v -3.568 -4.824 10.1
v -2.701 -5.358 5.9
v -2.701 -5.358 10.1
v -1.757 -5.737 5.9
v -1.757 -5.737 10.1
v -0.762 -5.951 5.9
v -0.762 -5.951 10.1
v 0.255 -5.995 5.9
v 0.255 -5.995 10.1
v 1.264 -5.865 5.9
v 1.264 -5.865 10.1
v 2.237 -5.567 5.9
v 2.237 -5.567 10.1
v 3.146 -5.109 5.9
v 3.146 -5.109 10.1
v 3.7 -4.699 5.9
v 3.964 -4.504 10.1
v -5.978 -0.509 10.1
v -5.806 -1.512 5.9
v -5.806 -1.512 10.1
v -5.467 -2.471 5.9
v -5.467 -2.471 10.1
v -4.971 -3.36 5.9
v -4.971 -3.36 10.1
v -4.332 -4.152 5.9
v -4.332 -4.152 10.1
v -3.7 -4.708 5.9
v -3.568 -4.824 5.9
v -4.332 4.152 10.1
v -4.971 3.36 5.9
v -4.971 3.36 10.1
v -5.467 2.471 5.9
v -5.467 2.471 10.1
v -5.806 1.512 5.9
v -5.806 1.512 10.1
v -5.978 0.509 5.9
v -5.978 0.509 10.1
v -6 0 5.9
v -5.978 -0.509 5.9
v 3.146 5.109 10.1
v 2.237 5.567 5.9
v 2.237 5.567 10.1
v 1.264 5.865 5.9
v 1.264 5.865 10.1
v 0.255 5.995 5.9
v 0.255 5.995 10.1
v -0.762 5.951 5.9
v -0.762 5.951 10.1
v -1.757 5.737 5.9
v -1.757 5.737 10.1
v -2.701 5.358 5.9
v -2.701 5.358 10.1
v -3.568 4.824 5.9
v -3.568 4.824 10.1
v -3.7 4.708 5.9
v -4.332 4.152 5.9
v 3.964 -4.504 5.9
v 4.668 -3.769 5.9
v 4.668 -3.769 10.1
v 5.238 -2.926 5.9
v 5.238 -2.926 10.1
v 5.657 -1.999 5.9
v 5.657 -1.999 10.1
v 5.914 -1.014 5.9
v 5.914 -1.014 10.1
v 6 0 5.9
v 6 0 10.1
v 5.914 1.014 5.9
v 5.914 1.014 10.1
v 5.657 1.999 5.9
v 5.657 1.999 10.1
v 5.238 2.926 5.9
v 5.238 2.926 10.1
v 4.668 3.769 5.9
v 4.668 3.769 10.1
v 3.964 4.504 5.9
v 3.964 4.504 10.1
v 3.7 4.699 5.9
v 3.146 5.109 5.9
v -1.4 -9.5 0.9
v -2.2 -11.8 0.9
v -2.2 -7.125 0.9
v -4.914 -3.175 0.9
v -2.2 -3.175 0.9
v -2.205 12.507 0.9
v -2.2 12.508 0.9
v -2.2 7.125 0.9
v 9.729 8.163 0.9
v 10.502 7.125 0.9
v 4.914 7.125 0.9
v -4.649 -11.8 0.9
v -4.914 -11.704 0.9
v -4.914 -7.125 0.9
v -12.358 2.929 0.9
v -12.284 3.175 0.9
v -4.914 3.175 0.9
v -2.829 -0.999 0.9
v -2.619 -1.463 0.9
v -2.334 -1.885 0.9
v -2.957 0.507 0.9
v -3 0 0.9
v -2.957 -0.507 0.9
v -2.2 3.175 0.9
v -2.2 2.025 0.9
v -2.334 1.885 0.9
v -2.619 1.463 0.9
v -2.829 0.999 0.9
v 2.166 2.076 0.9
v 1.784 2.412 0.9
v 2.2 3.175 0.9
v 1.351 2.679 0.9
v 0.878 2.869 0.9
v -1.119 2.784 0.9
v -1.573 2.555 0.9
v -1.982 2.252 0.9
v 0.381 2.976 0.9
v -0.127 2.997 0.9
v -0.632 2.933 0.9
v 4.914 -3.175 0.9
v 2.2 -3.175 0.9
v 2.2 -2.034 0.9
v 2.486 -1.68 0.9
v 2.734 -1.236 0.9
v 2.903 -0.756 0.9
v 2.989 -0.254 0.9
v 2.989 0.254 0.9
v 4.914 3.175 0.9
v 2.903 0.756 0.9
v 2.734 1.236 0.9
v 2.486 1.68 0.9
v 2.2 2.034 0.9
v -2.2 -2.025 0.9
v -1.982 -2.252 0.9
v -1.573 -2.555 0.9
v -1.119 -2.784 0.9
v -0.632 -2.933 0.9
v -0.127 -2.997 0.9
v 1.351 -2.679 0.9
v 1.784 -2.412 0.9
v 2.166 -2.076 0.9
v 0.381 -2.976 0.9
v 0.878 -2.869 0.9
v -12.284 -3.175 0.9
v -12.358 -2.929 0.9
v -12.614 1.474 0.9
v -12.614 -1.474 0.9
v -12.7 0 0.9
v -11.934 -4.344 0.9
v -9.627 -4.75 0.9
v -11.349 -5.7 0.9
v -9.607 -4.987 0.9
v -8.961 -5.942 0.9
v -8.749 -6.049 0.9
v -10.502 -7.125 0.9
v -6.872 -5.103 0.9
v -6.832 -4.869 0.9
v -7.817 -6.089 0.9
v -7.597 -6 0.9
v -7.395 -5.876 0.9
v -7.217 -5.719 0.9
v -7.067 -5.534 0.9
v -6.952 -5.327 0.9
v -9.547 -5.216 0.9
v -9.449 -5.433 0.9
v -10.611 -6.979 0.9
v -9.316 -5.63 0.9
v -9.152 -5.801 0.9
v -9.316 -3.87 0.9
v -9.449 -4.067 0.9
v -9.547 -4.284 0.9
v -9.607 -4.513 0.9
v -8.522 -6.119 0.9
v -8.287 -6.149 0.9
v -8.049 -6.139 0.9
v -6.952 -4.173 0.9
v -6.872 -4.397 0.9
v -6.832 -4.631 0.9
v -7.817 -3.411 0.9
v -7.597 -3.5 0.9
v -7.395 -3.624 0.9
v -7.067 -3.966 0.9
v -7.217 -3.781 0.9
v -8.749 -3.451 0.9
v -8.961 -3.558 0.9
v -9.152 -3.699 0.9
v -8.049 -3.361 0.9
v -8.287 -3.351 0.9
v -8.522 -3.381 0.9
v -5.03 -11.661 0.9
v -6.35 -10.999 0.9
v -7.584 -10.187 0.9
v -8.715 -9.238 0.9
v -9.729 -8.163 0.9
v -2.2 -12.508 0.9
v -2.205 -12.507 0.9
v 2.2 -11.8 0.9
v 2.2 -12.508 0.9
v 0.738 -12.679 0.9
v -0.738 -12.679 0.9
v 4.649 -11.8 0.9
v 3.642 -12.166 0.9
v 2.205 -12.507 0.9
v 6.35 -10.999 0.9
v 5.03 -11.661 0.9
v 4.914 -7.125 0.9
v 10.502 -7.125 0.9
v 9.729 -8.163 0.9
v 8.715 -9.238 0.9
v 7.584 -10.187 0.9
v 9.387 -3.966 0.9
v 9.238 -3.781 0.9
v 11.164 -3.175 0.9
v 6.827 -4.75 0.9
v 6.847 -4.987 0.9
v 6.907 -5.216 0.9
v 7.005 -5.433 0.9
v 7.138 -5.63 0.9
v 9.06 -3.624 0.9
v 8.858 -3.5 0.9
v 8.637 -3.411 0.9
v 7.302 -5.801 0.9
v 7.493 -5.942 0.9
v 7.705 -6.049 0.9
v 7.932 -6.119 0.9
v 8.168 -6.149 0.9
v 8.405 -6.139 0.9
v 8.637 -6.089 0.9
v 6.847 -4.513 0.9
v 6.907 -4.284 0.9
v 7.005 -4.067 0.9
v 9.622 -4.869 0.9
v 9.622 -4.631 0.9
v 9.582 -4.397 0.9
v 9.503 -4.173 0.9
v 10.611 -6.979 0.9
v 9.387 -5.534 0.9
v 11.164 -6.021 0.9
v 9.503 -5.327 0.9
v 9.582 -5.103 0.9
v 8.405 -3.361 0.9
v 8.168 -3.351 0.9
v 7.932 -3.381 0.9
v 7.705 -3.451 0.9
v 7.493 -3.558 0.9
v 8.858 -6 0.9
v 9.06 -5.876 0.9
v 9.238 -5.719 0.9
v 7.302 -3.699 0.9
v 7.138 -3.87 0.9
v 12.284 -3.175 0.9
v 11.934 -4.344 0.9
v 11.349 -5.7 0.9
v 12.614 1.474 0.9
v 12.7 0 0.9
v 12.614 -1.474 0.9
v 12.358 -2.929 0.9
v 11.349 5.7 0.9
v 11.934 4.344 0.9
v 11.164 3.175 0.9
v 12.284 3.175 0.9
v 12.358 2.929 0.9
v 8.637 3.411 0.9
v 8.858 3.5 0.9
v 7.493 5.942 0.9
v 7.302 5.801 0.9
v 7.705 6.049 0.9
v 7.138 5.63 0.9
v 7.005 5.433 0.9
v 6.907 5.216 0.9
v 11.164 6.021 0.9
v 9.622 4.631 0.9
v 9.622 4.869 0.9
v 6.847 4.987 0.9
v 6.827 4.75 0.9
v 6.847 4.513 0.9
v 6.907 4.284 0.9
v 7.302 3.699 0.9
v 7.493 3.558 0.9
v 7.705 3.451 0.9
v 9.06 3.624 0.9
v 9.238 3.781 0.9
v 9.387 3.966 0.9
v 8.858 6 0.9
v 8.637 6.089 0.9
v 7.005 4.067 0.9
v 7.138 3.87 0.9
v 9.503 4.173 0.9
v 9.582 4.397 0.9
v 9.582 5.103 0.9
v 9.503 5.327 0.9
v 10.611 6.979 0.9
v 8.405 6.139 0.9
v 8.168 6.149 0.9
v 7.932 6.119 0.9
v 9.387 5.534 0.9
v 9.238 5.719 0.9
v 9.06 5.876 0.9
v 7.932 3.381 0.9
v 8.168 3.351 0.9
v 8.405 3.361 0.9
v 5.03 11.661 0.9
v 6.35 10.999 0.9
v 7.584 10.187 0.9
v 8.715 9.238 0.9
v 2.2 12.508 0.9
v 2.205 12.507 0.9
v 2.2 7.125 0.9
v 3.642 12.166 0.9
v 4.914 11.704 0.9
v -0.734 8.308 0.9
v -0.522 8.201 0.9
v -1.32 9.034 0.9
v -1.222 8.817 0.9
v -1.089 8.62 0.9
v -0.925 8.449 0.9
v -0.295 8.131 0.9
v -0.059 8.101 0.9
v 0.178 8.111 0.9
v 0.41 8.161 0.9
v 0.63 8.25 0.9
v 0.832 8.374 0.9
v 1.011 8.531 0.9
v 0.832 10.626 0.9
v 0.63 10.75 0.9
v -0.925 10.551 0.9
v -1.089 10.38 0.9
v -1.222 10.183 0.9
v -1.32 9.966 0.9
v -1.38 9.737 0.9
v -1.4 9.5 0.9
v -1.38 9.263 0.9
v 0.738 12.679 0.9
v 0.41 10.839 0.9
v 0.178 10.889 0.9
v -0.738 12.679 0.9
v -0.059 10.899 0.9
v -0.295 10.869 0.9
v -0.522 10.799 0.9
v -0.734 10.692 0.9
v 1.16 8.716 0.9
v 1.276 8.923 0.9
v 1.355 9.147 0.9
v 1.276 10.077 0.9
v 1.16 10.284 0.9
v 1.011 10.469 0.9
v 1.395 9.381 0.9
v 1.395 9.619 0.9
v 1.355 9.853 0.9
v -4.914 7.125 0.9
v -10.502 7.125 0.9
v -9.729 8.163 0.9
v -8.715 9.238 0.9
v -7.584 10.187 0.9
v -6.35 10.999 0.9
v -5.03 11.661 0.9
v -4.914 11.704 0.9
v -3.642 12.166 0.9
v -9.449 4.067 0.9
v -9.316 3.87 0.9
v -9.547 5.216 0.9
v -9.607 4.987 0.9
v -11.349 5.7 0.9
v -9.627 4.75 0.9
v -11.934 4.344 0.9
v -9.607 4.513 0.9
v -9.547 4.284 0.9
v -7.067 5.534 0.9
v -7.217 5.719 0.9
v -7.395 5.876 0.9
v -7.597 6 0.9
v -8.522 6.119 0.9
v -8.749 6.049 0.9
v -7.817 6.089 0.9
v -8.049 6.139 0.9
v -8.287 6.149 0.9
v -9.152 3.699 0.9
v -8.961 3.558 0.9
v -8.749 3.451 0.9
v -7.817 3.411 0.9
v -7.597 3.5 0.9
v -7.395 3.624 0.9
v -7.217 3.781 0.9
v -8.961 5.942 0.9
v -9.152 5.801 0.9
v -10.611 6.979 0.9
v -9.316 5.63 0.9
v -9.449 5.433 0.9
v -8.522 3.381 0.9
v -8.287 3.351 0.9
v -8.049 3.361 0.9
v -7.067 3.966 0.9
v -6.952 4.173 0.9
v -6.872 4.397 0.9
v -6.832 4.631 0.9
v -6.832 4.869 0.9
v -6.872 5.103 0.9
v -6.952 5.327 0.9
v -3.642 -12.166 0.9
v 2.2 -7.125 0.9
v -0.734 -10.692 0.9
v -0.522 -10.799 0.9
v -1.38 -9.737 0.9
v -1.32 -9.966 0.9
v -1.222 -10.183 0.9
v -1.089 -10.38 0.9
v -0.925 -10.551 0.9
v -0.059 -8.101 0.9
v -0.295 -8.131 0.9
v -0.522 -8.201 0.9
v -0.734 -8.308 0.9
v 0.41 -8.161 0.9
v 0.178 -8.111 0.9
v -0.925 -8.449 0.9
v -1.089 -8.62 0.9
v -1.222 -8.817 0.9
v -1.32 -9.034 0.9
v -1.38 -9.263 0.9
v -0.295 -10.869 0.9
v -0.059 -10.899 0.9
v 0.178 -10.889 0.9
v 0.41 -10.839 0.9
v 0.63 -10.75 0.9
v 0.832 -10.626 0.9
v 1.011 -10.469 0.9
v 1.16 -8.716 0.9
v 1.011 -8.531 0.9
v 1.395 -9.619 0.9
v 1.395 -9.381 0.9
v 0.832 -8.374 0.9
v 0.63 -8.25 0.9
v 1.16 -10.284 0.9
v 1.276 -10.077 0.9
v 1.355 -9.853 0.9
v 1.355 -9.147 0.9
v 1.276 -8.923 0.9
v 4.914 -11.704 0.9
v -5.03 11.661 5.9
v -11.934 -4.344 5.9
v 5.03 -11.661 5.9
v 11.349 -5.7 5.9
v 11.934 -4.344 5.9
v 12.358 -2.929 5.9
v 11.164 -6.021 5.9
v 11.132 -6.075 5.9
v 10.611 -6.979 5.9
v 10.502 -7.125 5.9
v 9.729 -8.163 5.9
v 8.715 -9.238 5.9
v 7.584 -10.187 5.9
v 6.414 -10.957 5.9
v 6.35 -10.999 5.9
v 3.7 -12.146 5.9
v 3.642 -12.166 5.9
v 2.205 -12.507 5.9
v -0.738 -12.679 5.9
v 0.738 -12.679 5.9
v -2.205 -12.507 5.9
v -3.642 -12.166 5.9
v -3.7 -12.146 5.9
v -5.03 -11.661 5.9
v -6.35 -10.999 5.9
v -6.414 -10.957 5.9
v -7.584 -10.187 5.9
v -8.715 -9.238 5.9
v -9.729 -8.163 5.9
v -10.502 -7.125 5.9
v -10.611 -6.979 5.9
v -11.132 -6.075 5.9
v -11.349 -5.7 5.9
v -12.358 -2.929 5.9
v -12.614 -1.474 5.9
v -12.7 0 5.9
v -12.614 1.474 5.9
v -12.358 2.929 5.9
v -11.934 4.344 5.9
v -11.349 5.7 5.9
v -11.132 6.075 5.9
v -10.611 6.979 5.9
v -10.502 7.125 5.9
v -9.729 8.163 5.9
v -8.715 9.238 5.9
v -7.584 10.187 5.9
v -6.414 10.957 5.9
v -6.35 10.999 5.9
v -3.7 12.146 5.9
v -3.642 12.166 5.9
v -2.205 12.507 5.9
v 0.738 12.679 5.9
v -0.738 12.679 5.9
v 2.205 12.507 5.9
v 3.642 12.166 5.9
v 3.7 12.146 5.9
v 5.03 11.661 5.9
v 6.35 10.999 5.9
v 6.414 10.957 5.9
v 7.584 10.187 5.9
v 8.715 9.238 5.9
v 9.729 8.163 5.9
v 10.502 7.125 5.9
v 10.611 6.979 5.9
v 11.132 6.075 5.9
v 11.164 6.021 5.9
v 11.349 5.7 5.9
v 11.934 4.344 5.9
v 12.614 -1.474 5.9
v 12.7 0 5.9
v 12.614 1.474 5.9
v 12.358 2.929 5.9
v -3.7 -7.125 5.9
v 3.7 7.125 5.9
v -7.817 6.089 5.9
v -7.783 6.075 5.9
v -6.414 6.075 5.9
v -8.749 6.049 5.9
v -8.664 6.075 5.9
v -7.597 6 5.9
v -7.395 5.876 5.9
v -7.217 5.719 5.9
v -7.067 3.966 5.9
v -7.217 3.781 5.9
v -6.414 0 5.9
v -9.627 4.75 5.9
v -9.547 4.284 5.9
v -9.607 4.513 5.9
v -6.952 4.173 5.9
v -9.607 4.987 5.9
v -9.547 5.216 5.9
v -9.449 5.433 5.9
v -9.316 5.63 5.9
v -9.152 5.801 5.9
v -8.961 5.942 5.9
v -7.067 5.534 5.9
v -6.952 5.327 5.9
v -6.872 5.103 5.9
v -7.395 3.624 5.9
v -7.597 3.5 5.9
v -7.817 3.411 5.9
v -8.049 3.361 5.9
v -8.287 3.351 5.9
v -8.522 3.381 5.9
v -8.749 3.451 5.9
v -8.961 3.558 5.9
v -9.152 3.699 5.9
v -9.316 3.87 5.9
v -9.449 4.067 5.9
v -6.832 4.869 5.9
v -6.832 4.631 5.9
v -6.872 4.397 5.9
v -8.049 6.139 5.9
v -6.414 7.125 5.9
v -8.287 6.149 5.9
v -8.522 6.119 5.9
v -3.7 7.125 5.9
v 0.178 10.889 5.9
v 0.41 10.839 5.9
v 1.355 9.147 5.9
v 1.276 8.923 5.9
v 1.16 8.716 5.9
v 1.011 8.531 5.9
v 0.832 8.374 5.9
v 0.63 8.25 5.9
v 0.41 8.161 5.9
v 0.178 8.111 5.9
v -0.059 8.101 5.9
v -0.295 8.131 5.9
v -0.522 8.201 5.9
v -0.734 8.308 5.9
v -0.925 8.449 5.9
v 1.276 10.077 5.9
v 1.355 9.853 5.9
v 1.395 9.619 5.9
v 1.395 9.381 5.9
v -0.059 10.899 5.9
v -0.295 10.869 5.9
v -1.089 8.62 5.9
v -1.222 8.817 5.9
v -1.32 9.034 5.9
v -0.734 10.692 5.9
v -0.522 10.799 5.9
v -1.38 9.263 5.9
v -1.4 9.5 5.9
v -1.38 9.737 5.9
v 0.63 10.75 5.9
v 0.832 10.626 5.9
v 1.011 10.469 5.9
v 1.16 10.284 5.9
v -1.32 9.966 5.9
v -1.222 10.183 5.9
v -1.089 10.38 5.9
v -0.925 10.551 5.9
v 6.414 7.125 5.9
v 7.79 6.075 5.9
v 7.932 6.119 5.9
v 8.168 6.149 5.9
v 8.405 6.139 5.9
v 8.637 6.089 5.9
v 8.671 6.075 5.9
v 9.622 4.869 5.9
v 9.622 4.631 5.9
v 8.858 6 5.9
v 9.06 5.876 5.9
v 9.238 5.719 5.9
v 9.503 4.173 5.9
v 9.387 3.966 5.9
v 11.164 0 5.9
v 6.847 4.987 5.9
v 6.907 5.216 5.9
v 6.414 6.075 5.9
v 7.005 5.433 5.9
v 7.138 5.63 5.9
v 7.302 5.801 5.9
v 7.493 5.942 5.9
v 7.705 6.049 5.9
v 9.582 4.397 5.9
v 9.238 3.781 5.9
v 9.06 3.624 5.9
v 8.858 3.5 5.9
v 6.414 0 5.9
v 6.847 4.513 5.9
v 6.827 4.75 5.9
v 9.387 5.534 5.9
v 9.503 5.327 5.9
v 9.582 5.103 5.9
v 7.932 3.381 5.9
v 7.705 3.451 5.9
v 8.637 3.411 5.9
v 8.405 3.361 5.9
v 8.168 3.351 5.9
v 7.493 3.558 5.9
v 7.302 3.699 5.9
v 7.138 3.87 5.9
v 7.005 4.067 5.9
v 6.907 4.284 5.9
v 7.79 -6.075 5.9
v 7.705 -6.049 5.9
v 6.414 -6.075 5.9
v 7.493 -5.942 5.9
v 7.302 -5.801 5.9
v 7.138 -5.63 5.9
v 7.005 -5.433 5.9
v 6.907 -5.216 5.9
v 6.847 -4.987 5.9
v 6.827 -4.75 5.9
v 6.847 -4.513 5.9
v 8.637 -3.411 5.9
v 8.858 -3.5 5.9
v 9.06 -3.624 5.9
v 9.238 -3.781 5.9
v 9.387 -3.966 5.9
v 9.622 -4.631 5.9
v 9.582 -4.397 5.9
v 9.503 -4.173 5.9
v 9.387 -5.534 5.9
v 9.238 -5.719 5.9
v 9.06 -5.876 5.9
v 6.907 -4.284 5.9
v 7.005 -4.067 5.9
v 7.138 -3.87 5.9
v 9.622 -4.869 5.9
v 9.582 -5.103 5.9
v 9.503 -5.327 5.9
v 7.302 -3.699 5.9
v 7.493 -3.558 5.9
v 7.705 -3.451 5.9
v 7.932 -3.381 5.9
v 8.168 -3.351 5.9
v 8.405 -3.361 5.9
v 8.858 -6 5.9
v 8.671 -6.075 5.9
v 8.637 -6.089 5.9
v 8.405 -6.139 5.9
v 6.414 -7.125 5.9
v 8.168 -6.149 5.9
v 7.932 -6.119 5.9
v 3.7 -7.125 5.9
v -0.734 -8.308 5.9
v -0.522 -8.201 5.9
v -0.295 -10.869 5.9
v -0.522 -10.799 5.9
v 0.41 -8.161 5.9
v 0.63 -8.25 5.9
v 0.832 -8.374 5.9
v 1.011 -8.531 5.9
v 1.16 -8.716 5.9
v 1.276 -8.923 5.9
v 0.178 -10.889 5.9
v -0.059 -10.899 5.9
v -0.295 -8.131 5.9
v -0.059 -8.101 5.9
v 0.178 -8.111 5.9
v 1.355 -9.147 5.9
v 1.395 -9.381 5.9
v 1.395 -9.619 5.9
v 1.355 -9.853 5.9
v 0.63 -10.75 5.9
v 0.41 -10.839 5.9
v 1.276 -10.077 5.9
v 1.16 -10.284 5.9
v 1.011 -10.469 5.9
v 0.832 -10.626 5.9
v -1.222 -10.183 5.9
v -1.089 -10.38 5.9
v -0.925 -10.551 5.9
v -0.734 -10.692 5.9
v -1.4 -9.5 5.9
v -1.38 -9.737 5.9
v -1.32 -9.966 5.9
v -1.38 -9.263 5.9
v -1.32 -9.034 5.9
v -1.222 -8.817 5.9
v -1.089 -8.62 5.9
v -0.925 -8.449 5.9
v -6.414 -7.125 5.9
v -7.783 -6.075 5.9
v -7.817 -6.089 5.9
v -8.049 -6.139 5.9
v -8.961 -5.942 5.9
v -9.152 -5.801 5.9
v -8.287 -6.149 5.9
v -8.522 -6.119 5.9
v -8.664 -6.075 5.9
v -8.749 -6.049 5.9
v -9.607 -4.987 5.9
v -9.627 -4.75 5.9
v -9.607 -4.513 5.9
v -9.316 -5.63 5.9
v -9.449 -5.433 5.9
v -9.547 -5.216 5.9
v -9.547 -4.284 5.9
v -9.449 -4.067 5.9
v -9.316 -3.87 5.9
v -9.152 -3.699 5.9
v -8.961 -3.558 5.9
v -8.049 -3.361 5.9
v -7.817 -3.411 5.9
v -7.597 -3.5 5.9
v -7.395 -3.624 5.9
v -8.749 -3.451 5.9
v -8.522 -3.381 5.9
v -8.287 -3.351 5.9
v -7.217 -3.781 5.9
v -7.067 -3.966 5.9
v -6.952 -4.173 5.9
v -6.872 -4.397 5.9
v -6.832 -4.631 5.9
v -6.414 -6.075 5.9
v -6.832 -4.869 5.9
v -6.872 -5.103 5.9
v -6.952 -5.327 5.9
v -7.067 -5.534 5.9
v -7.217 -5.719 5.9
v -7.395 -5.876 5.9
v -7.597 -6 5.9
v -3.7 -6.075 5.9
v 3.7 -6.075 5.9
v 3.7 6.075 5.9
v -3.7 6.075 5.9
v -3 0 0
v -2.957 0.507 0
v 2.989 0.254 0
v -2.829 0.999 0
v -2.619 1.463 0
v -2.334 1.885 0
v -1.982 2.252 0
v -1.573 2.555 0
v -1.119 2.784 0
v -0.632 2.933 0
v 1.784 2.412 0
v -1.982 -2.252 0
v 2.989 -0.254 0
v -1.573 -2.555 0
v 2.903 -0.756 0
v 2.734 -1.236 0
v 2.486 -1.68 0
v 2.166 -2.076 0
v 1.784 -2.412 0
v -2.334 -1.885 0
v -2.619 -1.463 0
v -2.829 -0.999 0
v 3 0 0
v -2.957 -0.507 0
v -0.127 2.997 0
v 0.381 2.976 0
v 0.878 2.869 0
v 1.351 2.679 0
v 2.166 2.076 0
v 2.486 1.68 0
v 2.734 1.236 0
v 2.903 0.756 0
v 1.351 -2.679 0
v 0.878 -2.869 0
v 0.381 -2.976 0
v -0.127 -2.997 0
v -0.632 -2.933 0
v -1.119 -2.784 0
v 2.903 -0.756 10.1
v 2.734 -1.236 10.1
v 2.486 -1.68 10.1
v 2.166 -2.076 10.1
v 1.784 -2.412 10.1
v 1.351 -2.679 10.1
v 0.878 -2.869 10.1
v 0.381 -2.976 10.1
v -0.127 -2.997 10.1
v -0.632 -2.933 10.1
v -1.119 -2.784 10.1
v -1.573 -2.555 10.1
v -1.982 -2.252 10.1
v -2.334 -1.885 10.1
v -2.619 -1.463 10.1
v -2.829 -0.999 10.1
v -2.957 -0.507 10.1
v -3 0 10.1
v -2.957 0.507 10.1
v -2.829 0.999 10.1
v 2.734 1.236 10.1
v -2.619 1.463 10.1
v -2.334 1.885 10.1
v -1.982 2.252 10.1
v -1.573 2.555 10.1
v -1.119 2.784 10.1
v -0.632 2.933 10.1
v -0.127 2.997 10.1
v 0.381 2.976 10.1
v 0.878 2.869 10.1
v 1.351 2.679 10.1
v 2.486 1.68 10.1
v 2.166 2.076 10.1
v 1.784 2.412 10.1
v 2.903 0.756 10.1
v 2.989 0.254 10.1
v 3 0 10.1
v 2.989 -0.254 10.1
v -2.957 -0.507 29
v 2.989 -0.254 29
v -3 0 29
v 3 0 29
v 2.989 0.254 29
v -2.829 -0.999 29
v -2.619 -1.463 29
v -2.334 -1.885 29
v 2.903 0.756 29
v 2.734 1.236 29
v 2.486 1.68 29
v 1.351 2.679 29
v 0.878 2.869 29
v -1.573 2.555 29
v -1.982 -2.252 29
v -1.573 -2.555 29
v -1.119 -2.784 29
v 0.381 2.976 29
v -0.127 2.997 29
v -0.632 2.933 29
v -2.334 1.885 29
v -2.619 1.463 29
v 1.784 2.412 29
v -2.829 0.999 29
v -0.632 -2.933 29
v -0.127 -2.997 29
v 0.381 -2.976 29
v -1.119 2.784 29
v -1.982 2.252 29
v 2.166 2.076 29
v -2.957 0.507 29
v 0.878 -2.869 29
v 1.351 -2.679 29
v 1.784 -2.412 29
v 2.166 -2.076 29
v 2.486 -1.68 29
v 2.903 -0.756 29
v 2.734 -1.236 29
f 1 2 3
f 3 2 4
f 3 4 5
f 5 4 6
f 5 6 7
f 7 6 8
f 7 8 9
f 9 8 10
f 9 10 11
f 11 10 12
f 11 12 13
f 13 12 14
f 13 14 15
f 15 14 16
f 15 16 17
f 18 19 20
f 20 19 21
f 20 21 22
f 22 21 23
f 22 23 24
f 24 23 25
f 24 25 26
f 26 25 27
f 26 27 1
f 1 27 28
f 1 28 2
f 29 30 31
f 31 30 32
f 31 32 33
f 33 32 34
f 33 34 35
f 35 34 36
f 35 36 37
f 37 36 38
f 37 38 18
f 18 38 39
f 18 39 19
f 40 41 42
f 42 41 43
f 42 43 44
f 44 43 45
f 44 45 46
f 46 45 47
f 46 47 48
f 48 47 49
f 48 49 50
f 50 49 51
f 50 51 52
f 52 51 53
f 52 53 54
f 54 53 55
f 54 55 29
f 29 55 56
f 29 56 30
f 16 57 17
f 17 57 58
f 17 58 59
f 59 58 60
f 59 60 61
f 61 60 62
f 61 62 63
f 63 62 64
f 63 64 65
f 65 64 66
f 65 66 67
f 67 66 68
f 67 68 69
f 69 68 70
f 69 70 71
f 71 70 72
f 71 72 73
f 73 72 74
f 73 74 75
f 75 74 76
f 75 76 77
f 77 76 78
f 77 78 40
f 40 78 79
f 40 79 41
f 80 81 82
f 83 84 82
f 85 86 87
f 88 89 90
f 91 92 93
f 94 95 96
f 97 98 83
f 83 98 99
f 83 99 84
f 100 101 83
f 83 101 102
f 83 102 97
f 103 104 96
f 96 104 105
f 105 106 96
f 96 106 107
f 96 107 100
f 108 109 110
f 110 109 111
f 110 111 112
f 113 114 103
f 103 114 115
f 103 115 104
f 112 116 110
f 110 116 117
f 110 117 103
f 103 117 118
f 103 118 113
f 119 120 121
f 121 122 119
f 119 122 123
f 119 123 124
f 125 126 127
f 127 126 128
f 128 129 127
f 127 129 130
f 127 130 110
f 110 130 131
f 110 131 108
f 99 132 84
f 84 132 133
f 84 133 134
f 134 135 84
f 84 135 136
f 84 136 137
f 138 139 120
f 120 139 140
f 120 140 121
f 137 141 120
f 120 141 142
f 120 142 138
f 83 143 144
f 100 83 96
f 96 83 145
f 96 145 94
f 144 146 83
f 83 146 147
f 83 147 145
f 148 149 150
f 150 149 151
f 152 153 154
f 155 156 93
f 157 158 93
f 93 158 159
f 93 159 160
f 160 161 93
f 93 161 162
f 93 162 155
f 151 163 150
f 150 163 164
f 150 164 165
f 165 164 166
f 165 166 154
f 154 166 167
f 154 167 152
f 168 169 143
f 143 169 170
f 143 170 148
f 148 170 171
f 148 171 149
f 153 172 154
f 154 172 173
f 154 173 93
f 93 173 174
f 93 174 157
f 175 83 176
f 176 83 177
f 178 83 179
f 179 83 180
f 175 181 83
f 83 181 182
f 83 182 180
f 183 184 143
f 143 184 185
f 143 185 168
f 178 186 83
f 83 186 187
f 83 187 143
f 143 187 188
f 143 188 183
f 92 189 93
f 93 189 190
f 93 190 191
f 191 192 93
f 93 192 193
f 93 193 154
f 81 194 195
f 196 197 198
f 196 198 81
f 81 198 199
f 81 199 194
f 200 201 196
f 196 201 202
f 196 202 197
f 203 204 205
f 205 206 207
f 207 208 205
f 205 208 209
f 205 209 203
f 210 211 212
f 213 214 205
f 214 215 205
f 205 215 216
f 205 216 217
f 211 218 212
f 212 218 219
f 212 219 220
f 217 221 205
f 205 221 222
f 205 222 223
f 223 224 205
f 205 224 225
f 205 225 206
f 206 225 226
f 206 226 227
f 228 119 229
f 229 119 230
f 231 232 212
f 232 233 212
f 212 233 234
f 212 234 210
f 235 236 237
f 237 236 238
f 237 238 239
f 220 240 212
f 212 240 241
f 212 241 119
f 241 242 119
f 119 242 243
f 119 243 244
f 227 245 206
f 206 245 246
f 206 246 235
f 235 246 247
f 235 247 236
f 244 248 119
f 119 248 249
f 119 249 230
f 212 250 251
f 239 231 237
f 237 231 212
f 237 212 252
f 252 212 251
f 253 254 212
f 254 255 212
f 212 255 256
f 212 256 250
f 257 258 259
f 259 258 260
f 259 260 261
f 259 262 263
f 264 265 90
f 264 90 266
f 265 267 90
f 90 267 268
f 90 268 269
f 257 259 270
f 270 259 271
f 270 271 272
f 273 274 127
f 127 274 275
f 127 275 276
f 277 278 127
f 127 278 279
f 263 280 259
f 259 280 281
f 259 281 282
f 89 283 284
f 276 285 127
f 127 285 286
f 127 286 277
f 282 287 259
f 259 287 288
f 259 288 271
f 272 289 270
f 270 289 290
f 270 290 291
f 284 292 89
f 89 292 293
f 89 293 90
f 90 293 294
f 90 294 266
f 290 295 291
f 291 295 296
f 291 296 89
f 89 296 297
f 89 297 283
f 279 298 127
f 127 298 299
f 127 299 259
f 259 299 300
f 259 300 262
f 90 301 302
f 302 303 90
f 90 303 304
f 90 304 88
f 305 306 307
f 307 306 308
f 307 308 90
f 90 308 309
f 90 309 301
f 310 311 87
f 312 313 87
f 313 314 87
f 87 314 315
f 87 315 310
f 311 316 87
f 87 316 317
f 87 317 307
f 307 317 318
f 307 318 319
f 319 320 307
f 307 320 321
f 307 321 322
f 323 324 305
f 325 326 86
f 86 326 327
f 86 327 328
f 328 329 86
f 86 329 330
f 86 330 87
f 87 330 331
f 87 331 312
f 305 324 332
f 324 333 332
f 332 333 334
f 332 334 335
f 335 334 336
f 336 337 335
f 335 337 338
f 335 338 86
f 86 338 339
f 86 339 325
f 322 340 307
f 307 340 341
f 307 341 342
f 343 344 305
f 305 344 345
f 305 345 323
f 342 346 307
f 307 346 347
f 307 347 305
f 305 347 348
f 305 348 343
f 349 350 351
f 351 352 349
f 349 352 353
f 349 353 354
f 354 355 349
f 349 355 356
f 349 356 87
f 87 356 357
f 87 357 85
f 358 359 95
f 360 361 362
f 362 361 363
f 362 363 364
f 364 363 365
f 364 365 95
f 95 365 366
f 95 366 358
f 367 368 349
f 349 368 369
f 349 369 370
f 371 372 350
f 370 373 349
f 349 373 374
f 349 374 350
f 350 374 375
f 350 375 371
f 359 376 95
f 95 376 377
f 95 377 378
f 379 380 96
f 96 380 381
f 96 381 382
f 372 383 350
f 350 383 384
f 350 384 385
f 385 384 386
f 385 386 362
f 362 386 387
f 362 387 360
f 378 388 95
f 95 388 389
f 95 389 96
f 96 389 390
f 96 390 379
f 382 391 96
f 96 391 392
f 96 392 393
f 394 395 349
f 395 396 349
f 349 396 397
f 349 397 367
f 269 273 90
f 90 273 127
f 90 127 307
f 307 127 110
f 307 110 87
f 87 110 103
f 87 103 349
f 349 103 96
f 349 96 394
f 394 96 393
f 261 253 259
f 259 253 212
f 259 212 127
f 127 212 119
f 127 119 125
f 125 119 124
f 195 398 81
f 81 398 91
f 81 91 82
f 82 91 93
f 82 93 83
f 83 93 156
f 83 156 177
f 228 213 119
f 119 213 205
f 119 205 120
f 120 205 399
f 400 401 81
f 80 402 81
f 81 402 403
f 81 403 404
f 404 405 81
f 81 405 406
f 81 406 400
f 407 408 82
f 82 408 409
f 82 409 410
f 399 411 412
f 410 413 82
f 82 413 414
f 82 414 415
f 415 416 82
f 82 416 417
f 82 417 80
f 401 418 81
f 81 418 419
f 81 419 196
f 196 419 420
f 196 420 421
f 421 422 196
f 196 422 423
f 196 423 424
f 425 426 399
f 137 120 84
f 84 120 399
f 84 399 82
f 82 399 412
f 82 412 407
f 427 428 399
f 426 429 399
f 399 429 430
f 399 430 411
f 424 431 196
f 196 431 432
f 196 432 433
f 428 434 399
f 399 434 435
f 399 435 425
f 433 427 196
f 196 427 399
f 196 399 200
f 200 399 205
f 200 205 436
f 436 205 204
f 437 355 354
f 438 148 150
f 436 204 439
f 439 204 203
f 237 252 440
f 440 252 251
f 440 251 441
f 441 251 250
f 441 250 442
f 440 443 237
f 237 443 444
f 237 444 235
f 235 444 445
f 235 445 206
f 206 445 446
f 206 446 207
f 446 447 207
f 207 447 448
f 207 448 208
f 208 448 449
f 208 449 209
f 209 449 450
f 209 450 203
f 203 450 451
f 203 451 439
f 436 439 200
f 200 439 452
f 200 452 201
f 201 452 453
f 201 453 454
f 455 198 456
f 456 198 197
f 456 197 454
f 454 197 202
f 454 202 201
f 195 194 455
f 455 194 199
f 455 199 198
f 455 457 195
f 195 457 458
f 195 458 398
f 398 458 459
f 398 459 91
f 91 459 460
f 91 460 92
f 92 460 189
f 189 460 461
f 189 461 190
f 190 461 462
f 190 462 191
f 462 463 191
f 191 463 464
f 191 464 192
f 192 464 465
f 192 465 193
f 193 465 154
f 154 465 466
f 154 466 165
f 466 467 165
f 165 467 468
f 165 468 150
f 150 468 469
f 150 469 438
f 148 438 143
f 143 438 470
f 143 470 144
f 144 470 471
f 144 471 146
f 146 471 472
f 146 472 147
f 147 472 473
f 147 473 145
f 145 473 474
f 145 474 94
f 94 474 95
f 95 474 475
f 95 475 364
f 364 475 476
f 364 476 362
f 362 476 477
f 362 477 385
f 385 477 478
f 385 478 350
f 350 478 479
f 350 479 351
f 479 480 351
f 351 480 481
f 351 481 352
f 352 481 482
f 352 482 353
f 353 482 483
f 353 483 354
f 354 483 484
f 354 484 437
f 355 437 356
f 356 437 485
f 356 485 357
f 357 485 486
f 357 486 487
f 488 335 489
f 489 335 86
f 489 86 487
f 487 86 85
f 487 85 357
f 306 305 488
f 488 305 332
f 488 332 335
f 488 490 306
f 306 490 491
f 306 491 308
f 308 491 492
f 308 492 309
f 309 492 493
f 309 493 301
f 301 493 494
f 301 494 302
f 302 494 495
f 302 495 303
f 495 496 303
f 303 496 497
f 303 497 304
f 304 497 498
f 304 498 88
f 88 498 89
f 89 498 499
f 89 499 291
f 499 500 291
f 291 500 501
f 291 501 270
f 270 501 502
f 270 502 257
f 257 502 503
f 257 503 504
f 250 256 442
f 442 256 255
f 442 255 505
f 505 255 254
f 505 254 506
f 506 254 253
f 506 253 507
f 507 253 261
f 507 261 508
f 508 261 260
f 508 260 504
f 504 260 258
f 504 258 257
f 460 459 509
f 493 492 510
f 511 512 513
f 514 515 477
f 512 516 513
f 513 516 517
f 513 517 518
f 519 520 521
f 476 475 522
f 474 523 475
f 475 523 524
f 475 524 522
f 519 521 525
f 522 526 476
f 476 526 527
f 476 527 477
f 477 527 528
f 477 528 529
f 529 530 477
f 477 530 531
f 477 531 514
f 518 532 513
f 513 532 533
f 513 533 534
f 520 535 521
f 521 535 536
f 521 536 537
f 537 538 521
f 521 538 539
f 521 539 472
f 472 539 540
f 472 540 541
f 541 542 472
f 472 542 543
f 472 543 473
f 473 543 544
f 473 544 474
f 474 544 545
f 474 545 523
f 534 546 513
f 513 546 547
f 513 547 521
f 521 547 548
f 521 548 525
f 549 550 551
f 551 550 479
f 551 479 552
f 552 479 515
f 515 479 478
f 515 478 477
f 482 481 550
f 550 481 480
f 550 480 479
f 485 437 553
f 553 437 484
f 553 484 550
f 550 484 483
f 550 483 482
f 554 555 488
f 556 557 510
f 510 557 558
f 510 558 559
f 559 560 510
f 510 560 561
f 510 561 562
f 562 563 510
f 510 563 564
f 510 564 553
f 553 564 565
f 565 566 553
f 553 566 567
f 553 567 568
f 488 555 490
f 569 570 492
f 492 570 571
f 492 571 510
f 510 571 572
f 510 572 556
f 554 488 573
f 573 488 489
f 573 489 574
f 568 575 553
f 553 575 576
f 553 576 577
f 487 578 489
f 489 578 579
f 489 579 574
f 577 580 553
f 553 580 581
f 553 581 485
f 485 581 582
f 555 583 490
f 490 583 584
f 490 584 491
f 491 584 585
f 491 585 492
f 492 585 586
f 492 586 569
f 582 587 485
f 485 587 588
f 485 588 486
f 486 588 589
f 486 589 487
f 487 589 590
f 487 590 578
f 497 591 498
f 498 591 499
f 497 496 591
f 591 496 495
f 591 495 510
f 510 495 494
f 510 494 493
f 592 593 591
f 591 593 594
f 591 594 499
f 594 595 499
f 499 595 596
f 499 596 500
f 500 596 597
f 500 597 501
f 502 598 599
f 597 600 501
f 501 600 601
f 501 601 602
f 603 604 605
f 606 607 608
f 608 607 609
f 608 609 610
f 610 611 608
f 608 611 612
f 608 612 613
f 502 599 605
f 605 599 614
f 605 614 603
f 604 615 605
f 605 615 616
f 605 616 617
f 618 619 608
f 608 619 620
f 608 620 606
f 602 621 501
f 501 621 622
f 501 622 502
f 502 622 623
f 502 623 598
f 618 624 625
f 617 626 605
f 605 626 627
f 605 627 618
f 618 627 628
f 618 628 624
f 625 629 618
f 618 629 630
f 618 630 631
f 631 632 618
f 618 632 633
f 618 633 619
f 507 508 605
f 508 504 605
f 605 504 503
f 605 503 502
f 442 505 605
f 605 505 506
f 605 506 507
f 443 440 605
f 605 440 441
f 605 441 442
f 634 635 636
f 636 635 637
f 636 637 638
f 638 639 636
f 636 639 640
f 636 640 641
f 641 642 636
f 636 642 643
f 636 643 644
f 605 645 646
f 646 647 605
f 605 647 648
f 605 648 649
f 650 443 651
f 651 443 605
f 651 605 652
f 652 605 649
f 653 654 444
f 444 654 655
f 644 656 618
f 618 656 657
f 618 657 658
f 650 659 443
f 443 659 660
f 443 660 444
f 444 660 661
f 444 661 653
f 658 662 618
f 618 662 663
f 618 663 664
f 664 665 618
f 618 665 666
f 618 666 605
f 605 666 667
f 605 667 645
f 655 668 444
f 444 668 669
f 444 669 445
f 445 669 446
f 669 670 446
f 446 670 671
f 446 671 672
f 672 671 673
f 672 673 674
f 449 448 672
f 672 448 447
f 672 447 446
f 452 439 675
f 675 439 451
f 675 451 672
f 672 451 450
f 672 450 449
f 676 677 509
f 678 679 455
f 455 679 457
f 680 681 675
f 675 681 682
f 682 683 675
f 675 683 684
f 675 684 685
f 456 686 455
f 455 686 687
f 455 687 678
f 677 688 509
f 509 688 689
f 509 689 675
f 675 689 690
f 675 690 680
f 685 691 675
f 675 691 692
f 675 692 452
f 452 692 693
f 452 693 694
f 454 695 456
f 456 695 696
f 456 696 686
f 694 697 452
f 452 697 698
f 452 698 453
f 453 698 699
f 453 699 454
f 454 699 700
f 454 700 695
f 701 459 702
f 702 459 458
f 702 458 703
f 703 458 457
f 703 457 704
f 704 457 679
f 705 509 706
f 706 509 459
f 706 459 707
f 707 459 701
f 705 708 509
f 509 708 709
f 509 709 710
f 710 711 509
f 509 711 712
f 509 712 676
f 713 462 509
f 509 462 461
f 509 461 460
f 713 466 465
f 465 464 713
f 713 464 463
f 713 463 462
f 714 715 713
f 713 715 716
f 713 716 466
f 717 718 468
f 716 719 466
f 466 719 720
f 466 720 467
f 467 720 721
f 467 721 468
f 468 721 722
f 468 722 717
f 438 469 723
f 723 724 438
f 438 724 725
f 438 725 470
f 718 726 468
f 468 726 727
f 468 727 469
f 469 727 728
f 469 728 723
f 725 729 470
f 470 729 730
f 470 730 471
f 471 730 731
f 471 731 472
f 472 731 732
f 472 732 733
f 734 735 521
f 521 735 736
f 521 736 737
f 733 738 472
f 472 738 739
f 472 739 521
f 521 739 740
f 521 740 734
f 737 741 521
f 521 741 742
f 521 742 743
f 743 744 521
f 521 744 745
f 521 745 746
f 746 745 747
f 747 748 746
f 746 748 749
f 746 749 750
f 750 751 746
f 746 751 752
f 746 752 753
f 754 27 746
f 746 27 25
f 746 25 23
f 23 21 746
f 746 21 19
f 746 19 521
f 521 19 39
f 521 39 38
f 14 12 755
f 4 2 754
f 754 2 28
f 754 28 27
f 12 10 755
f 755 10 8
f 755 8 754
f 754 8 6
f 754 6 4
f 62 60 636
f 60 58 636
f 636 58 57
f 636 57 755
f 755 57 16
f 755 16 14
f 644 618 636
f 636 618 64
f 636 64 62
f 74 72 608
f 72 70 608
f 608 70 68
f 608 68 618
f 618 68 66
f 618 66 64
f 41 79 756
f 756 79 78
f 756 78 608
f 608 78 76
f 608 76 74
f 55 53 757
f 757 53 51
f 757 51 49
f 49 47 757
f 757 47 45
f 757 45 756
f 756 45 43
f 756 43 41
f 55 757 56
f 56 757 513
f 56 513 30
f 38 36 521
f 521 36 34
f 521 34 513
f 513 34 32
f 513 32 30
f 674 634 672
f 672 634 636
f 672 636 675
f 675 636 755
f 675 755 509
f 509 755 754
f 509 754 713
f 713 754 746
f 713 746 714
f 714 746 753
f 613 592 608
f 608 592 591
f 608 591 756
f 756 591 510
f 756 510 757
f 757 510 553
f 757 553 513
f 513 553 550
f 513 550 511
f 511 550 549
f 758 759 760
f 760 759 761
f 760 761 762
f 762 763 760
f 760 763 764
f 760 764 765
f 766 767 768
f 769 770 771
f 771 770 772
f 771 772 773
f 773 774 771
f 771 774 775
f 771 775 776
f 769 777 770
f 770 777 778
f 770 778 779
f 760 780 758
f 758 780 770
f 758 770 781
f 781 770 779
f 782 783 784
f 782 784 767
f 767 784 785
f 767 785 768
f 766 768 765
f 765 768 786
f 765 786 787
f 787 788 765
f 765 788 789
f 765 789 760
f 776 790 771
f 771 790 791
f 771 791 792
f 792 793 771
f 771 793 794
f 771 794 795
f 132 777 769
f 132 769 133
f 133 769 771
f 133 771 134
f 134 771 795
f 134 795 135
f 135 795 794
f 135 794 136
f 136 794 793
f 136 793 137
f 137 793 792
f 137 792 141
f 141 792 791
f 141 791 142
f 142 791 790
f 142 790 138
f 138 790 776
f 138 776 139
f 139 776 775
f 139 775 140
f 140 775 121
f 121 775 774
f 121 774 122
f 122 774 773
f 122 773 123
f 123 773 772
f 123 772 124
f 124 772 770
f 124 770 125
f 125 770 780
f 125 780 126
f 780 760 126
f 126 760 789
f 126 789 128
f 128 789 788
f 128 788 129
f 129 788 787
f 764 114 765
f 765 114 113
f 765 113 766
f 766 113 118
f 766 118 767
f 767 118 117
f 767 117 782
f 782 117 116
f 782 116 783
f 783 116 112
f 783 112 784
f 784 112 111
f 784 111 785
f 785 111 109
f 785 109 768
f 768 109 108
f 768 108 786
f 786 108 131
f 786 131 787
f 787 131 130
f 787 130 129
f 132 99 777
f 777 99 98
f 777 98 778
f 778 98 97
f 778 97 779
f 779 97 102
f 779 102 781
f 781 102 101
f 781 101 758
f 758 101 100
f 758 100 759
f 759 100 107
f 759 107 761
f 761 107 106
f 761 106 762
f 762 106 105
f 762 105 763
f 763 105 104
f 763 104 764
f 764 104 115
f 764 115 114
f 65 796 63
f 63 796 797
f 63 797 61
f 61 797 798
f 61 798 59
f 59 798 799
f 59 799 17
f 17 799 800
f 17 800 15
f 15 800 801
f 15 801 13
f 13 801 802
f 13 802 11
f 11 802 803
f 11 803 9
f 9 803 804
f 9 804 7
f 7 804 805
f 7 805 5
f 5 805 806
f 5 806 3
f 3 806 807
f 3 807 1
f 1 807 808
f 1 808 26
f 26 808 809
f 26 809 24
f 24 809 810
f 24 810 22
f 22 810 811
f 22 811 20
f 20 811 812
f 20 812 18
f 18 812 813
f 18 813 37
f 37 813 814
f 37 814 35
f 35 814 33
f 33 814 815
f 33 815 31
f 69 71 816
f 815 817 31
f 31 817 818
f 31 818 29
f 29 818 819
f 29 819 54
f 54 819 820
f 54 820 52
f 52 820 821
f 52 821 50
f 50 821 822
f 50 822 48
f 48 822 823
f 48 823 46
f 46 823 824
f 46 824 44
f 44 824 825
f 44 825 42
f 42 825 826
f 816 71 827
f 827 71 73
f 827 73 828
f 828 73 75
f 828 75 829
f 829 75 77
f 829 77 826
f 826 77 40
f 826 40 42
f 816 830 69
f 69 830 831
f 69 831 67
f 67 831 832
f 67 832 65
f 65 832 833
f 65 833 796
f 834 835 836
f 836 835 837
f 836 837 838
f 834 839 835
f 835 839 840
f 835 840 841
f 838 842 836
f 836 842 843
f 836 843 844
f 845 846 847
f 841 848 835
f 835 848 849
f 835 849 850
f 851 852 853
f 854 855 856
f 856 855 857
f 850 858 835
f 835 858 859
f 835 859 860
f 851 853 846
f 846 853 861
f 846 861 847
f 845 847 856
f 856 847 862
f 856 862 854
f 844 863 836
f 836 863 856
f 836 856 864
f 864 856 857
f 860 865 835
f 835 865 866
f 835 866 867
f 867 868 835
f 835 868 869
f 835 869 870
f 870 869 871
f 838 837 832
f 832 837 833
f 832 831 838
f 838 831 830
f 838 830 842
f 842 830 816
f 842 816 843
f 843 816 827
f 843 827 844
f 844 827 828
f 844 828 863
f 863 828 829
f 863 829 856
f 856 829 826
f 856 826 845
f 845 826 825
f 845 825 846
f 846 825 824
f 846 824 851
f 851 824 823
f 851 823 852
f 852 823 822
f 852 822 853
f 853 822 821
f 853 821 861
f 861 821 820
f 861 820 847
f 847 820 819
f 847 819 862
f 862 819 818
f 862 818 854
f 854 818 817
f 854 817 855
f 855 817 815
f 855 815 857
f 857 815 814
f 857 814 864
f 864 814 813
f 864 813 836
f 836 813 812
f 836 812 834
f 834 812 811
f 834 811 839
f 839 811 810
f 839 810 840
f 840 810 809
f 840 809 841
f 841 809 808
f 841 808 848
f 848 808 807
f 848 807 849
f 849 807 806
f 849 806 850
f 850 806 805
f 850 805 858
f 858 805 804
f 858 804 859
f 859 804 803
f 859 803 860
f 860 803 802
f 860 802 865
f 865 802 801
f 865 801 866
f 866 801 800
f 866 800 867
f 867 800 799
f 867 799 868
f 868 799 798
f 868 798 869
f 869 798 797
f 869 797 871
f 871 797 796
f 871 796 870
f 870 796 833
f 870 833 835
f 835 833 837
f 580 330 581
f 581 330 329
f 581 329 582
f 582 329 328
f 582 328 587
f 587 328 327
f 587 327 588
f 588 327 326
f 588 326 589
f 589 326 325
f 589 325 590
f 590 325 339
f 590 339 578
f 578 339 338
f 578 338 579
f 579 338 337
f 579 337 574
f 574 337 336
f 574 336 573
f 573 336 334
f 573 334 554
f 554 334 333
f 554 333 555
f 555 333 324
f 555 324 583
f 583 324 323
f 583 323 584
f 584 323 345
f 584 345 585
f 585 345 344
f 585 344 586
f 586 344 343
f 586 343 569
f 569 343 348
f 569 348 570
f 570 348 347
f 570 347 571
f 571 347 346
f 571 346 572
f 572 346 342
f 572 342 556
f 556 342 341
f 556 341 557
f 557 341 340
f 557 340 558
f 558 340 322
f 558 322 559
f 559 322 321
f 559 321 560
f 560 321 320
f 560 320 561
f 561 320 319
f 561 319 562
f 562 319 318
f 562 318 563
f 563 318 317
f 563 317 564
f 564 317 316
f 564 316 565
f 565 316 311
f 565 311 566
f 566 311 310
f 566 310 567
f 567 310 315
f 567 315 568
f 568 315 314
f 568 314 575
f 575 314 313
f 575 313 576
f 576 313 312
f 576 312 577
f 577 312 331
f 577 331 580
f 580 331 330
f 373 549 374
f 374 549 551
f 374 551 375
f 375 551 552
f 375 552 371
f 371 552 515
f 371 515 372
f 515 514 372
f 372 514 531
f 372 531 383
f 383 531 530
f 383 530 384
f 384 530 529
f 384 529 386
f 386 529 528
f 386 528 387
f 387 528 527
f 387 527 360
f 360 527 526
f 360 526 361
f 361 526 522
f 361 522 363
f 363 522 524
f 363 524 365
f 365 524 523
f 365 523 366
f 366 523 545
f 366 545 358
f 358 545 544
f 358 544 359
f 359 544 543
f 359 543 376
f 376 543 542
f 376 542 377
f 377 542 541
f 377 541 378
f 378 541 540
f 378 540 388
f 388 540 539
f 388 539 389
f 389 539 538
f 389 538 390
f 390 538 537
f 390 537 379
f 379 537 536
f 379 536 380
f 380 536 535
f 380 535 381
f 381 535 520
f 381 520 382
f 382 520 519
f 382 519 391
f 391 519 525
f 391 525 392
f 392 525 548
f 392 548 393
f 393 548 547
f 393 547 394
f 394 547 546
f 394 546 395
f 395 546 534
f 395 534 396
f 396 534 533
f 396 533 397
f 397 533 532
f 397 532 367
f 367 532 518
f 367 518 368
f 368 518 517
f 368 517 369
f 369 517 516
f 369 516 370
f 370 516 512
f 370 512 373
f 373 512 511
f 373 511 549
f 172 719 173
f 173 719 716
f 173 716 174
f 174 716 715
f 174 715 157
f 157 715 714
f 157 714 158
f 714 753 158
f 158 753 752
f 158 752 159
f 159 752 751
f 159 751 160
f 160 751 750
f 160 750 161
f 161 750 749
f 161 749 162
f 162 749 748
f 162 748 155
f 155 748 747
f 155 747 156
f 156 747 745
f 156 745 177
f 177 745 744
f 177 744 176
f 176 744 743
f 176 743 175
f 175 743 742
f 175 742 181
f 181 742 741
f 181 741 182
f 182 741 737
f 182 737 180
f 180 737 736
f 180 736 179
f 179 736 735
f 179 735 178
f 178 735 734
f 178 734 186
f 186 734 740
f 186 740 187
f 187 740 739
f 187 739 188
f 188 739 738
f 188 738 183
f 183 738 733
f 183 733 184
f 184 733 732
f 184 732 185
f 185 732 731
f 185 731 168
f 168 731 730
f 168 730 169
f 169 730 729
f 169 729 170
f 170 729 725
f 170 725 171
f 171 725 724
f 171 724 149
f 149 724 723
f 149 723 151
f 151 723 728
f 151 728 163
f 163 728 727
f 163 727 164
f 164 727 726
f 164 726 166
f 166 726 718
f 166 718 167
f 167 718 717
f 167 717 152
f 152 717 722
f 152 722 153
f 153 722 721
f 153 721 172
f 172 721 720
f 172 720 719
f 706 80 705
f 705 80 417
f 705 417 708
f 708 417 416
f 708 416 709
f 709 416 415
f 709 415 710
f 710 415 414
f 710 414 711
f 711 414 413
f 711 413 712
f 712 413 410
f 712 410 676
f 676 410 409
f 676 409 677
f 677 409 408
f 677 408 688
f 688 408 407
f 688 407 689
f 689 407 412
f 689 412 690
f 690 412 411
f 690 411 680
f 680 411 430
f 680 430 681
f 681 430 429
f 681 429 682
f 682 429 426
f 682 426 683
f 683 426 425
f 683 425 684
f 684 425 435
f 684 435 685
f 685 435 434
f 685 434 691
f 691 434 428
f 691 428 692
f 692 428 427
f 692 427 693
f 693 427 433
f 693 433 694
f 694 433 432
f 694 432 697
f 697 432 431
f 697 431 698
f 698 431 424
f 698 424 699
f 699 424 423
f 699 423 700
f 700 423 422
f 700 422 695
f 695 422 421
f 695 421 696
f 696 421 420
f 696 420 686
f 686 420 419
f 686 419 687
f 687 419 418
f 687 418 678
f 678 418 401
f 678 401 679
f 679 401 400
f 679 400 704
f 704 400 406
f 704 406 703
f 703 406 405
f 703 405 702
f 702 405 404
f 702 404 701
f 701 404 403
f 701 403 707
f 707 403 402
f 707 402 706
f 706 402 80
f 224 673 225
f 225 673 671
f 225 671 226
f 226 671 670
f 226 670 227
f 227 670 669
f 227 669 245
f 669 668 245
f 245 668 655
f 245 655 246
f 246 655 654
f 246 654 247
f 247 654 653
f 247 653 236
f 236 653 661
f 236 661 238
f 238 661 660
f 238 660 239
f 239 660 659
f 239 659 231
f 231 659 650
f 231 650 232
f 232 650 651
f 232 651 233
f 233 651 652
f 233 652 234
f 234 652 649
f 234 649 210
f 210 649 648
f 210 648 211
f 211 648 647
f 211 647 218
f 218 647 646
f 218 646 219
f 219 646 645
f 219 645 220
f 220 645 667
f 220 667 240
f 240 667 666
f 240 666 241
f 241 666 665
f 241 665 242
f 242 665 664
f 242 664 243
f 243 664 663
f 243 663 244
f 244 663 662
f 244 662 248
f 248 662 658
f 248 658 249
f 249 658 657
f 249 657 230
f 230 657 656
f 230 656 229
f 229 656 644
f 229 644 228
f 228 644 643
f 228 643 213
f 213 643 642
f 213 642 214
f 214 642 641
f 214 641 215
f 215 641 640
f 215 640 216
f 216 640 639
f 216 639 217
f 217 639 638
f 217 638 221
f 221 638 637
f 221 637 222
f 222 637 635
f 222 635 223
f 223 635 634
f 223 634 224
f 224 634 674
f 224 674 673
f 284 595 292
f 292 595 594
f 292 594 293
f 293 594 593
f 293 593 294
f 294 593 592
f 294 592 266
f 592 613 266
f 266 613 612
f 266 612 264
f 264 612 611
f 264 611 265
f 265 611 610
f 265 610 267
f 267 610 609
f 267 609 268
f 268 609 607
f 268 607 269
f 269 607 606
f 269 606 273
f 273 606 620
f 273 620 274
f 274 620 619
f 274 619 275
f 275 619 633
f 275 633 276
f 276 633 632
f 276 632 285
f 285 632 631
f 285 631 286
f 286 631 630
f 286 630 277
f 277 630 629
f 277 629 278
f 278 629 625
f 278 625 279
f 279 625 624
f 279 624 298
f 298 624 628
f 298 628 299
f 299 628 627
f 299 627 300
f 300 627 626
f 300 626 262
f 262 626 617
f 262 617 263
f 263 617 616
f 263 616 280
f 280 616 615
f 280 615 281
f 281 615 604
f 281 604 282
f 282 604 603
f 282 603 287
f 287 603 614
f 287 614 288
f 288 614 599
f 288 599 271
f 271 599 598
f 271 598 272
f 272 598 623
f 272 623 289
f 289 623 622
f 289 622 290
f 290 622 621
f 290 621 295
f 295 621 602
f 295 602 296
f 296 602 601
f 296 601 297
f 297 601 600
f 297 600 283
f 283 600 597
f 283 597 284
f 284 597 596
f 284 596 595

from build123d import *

# Parameters (mm, degrees)
SKETCH1_R           = 3
BOSS_EXTRUDE1_DEPTH = 29
SKETCH2_R           = 6
BOSS_EXTRUDE2_DEPTH = 2.1
SKETCH3_R           = 12.7
BOSS_EXTRUDE3_DEPTH = 5
SKETCH4_R           = 6
BOSS_EXTRUDE4_DEPTH = 2.1
SKETCH10_R          = 1.4
CUT_EXTRUDE1_DEPTH  = 5


with BuildPart() as part:
    # Sketch1 → Boss-Extrude1 (new body)
    with BuildSketch(Plane.XY):
        Circle(SKETCH1_R)
    extrude(amount=BOSS_EXTRUDE1_DEPTH)

    # Sketch2 → Boss-Extrude2 (add)
    with BuildSketch(Plane.XY.offset(8)):
        Circle(SKETCH2_R)
    extrude(amount=-BOSS_EXTRUDE2_DEPTH)

    # Sketch3 → Boss-Extrude3 (add)
    with BuildSketch(Plane(origin=(0, 0, 5.9), x_dir=(-1, 0, 0), z_dir=(0, 0, -1))):
        Circle(SKETCH3_R)
    extrude(amount=BOSS_EXTRUDE3_DEPTH)

    # Sketch4 → Boss-Extrude4 (add)
    with BuildSketch(Plane.XY.offset(8)):
        Circle(SKETCH4_R)
    extrude(amount=BOSS_EXTRUDE4_DEPTH)

    # Sketch10 → Cut-Extrude1 (cut)
    with BuildSketch(Plane(origin=(0, 0, 0.9), x_dir=(-1, 0, 0), z_dir=(0, 0, -1))):
        with Locations((8.227241336, 4.75)):
            Circle(SKETCH10_R)
        with Locations((0, 9.5)):
            Circle(SKETCH10_R)
        with Locations((8.227241336, -4.75)):
            Circle(SKETCH10_R)
        with Locations((0, -9.5)):
            Circle(SKETCH10_R)
        with Locations((-8.227241336, -4.75)):
            Circle(SKETCH10_R)
        with Locations((-8.227241336, 4.75)):
            Circle(SKETCH10_R)
    extrude(amount=-CUT_EXTRUDE1_DEPTH, mode=Mode.SUBTRACT)


solid = part.part
